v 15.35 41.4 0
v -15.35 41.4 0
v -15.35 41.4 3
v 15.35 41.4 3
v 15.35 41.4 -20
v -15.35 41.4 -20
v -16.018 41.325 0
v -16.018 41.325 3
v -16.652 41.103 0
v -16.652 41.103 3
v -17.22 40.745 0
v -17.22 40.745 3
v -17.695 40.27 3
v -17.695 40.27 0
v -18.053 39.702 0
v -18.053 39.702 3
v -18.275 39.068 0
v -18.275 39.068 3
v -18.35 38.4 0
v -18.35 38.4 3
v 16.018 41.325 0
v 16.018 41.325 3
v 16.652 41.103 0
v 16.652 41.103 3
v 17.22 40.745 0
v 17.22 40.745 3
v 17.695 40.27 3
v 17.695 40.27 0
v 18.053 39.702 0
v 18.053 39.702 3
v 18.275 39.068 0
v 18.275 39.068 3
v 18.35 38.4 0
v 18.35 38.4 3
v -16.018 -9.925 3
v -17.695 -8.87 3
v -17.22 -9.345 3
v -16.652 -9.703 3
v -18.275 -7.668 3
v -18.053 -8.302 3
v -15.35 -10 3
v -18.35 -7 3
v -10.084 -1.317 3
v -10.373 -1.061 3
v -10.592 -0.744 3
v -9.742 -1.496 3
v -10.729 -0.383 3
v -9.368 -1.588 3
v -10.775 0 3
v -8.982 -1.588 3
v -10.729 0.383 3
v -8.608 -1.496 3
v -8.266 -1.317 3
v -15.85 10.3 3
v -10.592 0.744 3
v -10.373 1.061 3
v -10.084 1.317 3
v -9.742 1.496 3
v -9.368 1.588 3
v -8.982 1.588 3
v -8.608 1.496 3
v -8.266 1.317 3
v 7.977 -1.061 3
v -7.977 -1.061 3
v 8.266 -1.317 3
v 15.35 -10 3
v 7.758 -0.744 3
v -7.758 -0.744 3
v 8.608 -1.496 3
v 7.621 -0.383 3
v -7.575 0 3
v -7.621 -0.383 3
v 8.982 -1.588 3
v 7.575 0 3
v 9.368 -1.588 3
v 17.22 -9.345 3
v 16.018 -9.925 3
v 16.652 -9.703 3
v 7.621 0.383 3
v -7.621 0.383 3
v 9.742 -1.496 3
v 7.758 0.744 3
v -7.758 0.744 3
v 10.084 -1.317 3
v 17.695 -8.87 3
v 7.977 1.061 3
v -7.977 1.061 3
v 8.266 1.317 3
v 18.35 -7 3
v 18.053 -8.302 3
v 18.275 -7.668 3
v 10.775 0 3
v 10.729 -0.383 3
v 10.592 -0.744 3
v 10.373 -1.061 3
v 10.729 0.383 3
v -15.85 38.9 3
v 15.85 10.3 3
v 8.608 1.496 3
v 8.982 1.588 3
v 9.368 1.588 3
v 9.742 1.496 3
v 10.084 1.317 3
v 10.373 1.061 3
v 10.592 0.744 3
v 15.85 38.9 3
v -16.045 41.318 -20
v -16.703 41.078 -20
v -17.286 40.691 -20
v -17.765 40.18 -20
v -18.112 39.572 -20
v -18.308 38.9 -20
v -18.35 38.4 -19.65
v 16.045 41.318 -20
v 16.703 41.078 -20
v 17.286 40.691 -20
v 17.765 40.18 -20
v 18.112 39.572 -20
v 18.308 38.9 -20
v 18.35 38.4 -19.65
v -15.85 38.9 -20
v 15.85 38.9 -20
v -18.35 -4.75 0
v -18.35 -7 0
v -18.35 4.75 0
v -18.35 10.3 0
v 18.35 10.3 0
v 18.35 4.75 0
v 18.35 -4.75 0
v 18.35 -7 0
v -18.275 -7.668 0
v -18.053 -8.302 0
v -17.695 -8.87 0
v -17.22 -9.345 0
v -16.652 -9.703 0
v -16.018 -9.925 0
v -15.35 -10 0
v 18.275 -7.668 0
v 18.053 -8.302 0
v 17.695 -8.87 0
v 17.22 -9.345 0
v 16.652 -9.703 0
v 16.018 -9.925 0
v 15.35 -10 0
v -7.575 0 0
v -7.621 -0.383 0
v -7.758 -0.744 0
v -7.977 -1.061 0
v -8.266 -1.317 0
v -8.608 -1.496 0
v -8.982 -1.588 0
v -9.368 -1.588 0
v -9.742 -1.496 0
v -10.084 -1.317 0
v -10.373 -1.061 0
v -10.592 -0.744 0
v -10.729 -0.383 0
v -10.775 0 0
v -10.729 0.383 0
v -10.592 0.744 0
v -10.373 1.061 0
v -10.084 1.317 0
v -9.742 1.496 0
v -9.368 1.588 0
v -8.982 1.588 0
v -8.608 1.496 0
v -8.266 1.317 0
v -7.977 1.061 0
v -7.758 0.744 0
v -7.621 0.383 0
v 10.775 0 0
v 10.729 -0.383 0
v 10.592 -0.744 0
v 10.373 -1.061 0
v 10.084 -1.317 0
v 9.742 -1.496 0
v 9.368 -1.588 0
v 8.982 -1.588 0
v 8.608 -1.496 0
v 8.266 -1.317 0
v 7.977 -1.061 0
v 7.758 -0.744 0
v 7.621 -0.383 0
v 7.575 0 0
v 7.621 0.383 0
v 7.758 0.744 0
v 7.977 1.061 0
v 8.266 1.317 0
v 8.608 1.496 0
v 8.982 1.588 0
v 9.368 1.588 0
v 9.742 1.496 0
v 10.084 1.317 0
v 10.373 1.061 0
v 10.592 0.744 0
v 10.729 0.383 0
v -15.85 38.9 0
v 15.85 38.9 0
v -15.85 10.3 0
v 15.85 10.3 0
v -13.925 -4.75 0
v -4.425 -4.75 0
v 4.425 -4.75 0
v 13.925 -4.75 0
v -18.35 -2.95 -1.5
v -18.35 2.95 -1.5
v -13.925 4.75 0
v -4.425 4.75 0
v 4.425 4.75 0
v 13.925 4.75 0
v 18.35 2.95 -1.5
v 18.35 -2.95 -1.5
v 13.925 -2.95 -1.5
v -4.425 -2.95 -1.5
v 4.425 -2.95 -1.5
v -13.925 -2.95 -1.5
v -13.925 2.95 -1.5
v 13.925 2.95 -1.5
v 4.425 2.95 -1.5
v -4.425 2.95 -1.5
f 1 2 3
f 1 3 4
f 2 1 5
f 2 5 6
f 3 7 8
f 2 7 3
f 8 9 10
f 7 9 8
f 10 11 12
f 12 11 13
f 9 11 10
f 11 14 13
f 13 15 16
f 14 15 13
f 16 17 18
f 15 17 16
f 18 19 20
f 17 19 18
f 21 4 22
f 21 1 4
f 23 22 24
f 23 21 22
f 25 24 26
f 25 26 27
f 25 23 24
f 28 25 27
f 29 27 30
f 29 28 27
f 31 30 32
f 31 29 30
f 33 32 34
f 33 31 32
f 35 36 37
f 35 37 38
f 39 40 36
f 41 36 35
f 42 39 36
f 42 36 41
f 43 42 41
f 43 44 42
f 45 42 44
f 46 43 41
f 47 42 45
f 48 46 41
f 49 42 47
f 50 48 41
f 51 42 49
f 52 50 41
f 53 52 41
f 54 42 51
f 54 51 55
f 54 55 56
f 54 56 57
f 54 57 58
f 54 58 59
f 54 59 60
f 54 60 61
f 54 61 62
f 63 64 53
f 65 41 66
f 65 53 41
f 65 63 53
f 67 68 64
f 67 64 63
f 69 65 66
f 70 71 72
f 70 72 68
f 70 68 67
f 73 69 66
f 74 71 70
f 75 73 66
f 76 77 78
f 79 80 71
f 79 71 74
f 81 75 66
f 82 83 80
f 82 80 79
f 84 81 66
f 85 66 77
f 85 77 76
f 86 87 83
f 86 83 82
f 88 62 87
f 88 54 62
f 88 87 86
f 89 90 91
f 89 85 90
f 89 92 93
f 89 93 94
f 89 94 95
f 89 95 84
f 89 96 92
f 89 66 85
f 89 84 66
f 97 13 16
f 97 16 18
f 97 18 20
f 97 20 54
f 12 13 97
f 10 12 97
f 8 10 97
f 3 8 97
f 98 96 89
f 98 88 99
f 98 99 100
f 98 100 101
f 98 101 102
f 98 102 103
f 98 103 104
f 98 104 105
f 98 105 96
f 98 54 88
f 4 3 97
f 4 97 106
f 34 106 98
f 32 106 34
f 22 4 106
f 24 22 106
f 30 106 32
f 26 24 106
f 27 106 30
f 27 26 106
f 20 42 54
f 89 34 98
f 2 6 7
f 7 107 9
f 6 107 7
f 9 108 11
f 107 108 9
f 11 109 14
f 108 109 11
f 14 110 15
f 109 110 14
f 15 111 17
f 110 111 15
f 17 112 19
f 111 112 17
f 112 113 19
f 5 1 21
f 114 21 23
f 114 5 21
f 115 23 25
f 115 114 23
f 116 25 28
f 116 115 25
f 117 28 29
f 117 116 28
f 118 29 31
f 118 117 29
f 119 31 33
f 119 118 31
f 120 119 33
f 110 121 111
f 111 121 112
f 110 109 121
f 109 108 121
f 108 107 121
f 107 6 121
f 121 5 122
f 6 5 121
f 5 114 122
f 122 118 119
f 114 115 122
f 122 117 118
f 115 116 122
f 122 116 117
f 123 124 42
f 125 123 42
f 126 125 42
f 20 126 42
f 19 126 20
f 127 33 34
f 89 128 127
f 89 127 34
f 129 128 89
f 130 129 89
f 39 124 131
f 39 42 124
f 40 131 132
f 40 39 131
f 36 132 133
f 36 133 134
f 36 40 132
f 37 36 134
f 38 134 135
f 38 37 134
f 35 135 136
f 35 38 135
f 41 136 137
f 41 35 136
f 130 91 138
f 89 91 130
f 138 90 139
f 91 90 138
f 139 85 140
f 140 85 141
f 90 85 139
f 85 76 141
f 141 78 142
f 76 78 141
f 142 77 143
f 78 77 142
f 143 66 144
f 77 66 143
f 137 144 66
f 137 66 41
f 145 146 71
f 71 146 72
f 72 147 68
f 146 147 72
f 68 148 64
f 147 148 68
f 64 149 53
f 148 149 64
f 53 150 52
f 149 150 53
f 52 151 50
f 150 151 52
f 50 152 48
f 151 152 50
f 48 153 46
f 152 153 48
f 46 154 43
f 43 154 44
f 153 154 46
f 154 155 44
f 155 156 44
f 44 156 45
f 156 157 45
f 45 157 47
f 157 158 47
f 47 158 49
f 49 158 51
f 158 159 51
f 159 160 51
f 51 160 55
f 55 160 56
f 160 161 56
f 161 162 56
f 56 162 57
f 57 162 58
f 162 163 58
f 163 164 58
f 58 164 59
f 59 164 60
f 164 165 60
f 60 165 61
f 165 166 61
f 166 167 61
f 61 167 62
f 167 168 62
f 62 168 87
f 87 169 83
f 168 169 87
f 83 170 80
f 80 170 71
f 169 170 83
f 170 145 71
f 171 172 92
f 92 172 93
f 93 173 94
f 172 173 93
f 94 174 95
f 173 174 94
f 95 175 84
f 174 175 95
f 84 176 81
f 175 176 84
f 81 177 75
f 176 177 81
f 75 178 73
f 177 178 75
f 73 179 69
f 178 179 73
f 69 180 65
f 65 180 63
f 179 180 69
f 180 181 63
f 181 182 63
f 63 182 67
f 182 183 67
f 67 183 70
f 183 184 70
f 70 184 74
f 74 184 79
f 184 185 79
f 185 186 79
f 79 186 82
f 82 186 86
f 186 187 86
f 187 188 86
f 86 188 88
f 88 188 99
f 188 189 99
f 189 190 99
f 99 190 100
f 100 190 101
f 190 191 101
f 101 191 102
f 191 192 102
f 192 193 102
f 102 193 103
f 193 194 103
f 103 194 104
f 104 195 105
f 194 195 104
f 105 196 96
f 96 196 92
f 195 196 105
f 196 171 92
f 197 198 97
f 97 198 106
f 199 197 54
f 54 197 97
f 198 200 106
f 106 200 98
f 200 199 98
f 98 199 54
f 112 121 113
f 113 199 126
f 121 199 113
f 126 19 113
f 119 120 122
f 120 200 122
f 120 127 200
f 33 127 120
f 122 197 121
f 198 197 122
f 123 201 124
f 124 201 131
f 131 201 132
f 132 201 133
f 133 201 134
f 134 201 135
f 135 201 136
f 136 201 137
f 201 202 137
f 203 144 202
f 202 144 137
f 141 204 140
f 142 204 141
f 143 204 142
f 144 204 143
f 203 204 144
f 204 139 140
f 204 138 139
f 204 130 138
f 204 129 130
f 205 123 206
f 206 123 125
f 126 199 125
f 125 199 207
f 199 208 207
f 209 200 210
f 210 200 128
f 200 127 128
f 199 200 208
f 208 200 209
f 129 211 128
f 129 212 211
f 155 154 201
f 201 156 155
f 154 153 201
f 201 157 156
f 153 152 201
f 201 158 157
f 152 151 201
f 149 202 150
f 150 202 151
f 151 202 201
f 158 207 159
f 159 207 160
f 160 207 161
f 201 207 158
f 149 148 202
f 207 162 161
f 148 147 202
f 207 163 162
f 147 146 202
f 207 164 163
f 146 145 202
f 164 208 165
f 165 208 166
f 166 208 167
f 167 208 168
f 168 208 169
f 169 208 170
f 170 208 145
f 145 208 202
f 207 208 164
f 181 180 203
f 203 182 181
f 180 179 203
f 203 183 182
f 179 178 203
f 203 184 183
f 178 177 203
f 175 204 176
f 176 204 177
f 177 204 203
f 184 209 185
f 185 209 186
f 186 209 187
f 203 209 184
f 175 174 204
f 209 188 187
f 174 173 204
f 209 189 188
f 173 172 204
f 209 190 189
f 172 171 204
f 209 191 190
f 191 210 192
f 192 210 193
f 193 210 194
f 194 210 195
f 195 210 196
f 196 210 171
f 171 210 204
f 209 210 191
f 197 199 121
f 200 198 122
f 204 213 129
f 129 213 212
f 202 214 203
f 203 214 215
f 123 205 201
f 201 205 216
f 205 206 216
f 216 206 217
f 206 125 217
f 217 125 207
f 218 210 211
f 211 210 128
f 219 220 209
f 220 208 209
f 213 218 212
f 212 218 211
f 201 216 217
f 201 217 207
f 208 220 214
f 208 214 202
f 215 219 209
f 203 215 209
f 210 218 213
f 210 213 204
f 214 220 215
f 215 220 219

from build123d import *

# Parameters (mm, degrees)
SKETCH_W        = 36.7
SKETCH_H        = 51.4
SKETCH_W_2      = 31.7
SKETCH_H_2      = 28.6
PAD_DEPTH       = 3
PAD001_DEPTH    = 36.7
SKETCH002_R     = 1.6
POCKET_DEPTH    = 4.501
SKETCH003_W     = 9.5
SKETCH003_H     = 9.5
POCKET001_DEPTH = 1.5
SKETCH004_W     = 36.7
SKETCH004_H     = 31.1
PAD002_DEPTH    = 20
PAD002_FACE31_W = 28.6
PAD002_FACE31_H = 31.7
POCKET002_DEPTH = 20.001
POCKET003_DEPTH = 36.701
FILLET_R        = 3


with BuildPart() as part:
    # Sketch → Pad (new body)
    with BuildSketch(Plane.XY):
        with Locations((0, 15.7)):
            Rectangle(SKETCH_W, SKETCH_H)
        with Locations((0, 24.6)):
            Rectangle(SKETCH_W_2, SKETCH_H_2, mode=Mode.SUBTRACT)
    extrude(amount=PAD_DEPTH)

    # Sketch001 (on Face4 of Pad) → Pad001 (join)
    with BuildSketch(Plane(origin=(-18.35, 0, 0), x_dir=(0, -1, 0), z_dir=(-1, 0, 0))):
        Polygon((-4.75, 0), (4.75, 0), (2.95, -1.5), (-2.95, -1.5), align=None)
    extrude(amount=-PAD001_DEPTH)

    # Sketch002 (on Face16 of Pad001) → Pocket (cut, through all)
    with BuildSketch(Plane(origin=(0, 0, -1.5), x_dir=(1, 0, 0), z_dir=(0, 0, -1))):
        with Locations((-9.175, 0)):
            Circle(SKETCH002_R)
        with Locations((9.175, 0)):
            Circle(SKETCH002_R)
    extrude(amount=-POCKET_DEPTH, mode=Mode.SUBTRACT)

    # Sketch003 (on Face18 of Pocket) → Pocket001 (cut)
    with BuildSketch(Plane(origin=(0, 0, -1.5), x_dir=(1, 0, 0), z_dir=(0, 0, -1))):
        with Locations((-9.175, 0)):
            Rectangle(SKETCH003_W, SKETCH003_H)
        with Locations((9.175, 0)):
            Rectangle(SKETCH003_W, SKETCH003_H)
    extrude(amount=-POCKET001_DEPTH, mode=Mode.SUBTRACT)

    # Sketch004 (on Face4 of Pocket001) → Pad002 (join)
    with BuildSketch(Plane(origin=(0, 0, 0), x_dir=(1, 0, 0), z_dir=(0, 0, -1))):
        with Locations((0, -25.85)):
            Rectangle(SKETCH004_W, SKETCH004_H)
    extrude(amount=PAD002_DEPTH)

    # Pad002 Face31 → Pocket002 (cut, through all)
    with BuildSketch(Plane(origin=(0, 24.6, 0), x_dir=(0, 1, 0), z_dir=(0, 0, 1))):
        Rectangle(PAD002_FACE31_W, PAD002_FACE31_H)
    extrude(amount=-POCKET002_DEPTH, mode=Mode.SUBTRACT)

    # Sketch005 (on Face11 of Pocket002) → Pocket003 (cut, through all)
    with BuildSketch(Plane.YZ.offset(18.35)):
        Polygon((10.3, 0), (10.3, -20), (38.9, -20), align=None)
    extrude(amount=-POCKET003_DEPTH, mode=Mode.SUBTRACT)

    # Fillet
    fillet_edges = [part.edges().sort_by_distance(p)[0] for p in [
        (18.35, 41.4, -10),
        (-18.35, 41.4, -10),
        (-18.35, -10, 1.5),
        (18.35, -10, 1.5),
    ]]
    fillet(fillet_edges, radius=FILLET_R)


solid = part.part
